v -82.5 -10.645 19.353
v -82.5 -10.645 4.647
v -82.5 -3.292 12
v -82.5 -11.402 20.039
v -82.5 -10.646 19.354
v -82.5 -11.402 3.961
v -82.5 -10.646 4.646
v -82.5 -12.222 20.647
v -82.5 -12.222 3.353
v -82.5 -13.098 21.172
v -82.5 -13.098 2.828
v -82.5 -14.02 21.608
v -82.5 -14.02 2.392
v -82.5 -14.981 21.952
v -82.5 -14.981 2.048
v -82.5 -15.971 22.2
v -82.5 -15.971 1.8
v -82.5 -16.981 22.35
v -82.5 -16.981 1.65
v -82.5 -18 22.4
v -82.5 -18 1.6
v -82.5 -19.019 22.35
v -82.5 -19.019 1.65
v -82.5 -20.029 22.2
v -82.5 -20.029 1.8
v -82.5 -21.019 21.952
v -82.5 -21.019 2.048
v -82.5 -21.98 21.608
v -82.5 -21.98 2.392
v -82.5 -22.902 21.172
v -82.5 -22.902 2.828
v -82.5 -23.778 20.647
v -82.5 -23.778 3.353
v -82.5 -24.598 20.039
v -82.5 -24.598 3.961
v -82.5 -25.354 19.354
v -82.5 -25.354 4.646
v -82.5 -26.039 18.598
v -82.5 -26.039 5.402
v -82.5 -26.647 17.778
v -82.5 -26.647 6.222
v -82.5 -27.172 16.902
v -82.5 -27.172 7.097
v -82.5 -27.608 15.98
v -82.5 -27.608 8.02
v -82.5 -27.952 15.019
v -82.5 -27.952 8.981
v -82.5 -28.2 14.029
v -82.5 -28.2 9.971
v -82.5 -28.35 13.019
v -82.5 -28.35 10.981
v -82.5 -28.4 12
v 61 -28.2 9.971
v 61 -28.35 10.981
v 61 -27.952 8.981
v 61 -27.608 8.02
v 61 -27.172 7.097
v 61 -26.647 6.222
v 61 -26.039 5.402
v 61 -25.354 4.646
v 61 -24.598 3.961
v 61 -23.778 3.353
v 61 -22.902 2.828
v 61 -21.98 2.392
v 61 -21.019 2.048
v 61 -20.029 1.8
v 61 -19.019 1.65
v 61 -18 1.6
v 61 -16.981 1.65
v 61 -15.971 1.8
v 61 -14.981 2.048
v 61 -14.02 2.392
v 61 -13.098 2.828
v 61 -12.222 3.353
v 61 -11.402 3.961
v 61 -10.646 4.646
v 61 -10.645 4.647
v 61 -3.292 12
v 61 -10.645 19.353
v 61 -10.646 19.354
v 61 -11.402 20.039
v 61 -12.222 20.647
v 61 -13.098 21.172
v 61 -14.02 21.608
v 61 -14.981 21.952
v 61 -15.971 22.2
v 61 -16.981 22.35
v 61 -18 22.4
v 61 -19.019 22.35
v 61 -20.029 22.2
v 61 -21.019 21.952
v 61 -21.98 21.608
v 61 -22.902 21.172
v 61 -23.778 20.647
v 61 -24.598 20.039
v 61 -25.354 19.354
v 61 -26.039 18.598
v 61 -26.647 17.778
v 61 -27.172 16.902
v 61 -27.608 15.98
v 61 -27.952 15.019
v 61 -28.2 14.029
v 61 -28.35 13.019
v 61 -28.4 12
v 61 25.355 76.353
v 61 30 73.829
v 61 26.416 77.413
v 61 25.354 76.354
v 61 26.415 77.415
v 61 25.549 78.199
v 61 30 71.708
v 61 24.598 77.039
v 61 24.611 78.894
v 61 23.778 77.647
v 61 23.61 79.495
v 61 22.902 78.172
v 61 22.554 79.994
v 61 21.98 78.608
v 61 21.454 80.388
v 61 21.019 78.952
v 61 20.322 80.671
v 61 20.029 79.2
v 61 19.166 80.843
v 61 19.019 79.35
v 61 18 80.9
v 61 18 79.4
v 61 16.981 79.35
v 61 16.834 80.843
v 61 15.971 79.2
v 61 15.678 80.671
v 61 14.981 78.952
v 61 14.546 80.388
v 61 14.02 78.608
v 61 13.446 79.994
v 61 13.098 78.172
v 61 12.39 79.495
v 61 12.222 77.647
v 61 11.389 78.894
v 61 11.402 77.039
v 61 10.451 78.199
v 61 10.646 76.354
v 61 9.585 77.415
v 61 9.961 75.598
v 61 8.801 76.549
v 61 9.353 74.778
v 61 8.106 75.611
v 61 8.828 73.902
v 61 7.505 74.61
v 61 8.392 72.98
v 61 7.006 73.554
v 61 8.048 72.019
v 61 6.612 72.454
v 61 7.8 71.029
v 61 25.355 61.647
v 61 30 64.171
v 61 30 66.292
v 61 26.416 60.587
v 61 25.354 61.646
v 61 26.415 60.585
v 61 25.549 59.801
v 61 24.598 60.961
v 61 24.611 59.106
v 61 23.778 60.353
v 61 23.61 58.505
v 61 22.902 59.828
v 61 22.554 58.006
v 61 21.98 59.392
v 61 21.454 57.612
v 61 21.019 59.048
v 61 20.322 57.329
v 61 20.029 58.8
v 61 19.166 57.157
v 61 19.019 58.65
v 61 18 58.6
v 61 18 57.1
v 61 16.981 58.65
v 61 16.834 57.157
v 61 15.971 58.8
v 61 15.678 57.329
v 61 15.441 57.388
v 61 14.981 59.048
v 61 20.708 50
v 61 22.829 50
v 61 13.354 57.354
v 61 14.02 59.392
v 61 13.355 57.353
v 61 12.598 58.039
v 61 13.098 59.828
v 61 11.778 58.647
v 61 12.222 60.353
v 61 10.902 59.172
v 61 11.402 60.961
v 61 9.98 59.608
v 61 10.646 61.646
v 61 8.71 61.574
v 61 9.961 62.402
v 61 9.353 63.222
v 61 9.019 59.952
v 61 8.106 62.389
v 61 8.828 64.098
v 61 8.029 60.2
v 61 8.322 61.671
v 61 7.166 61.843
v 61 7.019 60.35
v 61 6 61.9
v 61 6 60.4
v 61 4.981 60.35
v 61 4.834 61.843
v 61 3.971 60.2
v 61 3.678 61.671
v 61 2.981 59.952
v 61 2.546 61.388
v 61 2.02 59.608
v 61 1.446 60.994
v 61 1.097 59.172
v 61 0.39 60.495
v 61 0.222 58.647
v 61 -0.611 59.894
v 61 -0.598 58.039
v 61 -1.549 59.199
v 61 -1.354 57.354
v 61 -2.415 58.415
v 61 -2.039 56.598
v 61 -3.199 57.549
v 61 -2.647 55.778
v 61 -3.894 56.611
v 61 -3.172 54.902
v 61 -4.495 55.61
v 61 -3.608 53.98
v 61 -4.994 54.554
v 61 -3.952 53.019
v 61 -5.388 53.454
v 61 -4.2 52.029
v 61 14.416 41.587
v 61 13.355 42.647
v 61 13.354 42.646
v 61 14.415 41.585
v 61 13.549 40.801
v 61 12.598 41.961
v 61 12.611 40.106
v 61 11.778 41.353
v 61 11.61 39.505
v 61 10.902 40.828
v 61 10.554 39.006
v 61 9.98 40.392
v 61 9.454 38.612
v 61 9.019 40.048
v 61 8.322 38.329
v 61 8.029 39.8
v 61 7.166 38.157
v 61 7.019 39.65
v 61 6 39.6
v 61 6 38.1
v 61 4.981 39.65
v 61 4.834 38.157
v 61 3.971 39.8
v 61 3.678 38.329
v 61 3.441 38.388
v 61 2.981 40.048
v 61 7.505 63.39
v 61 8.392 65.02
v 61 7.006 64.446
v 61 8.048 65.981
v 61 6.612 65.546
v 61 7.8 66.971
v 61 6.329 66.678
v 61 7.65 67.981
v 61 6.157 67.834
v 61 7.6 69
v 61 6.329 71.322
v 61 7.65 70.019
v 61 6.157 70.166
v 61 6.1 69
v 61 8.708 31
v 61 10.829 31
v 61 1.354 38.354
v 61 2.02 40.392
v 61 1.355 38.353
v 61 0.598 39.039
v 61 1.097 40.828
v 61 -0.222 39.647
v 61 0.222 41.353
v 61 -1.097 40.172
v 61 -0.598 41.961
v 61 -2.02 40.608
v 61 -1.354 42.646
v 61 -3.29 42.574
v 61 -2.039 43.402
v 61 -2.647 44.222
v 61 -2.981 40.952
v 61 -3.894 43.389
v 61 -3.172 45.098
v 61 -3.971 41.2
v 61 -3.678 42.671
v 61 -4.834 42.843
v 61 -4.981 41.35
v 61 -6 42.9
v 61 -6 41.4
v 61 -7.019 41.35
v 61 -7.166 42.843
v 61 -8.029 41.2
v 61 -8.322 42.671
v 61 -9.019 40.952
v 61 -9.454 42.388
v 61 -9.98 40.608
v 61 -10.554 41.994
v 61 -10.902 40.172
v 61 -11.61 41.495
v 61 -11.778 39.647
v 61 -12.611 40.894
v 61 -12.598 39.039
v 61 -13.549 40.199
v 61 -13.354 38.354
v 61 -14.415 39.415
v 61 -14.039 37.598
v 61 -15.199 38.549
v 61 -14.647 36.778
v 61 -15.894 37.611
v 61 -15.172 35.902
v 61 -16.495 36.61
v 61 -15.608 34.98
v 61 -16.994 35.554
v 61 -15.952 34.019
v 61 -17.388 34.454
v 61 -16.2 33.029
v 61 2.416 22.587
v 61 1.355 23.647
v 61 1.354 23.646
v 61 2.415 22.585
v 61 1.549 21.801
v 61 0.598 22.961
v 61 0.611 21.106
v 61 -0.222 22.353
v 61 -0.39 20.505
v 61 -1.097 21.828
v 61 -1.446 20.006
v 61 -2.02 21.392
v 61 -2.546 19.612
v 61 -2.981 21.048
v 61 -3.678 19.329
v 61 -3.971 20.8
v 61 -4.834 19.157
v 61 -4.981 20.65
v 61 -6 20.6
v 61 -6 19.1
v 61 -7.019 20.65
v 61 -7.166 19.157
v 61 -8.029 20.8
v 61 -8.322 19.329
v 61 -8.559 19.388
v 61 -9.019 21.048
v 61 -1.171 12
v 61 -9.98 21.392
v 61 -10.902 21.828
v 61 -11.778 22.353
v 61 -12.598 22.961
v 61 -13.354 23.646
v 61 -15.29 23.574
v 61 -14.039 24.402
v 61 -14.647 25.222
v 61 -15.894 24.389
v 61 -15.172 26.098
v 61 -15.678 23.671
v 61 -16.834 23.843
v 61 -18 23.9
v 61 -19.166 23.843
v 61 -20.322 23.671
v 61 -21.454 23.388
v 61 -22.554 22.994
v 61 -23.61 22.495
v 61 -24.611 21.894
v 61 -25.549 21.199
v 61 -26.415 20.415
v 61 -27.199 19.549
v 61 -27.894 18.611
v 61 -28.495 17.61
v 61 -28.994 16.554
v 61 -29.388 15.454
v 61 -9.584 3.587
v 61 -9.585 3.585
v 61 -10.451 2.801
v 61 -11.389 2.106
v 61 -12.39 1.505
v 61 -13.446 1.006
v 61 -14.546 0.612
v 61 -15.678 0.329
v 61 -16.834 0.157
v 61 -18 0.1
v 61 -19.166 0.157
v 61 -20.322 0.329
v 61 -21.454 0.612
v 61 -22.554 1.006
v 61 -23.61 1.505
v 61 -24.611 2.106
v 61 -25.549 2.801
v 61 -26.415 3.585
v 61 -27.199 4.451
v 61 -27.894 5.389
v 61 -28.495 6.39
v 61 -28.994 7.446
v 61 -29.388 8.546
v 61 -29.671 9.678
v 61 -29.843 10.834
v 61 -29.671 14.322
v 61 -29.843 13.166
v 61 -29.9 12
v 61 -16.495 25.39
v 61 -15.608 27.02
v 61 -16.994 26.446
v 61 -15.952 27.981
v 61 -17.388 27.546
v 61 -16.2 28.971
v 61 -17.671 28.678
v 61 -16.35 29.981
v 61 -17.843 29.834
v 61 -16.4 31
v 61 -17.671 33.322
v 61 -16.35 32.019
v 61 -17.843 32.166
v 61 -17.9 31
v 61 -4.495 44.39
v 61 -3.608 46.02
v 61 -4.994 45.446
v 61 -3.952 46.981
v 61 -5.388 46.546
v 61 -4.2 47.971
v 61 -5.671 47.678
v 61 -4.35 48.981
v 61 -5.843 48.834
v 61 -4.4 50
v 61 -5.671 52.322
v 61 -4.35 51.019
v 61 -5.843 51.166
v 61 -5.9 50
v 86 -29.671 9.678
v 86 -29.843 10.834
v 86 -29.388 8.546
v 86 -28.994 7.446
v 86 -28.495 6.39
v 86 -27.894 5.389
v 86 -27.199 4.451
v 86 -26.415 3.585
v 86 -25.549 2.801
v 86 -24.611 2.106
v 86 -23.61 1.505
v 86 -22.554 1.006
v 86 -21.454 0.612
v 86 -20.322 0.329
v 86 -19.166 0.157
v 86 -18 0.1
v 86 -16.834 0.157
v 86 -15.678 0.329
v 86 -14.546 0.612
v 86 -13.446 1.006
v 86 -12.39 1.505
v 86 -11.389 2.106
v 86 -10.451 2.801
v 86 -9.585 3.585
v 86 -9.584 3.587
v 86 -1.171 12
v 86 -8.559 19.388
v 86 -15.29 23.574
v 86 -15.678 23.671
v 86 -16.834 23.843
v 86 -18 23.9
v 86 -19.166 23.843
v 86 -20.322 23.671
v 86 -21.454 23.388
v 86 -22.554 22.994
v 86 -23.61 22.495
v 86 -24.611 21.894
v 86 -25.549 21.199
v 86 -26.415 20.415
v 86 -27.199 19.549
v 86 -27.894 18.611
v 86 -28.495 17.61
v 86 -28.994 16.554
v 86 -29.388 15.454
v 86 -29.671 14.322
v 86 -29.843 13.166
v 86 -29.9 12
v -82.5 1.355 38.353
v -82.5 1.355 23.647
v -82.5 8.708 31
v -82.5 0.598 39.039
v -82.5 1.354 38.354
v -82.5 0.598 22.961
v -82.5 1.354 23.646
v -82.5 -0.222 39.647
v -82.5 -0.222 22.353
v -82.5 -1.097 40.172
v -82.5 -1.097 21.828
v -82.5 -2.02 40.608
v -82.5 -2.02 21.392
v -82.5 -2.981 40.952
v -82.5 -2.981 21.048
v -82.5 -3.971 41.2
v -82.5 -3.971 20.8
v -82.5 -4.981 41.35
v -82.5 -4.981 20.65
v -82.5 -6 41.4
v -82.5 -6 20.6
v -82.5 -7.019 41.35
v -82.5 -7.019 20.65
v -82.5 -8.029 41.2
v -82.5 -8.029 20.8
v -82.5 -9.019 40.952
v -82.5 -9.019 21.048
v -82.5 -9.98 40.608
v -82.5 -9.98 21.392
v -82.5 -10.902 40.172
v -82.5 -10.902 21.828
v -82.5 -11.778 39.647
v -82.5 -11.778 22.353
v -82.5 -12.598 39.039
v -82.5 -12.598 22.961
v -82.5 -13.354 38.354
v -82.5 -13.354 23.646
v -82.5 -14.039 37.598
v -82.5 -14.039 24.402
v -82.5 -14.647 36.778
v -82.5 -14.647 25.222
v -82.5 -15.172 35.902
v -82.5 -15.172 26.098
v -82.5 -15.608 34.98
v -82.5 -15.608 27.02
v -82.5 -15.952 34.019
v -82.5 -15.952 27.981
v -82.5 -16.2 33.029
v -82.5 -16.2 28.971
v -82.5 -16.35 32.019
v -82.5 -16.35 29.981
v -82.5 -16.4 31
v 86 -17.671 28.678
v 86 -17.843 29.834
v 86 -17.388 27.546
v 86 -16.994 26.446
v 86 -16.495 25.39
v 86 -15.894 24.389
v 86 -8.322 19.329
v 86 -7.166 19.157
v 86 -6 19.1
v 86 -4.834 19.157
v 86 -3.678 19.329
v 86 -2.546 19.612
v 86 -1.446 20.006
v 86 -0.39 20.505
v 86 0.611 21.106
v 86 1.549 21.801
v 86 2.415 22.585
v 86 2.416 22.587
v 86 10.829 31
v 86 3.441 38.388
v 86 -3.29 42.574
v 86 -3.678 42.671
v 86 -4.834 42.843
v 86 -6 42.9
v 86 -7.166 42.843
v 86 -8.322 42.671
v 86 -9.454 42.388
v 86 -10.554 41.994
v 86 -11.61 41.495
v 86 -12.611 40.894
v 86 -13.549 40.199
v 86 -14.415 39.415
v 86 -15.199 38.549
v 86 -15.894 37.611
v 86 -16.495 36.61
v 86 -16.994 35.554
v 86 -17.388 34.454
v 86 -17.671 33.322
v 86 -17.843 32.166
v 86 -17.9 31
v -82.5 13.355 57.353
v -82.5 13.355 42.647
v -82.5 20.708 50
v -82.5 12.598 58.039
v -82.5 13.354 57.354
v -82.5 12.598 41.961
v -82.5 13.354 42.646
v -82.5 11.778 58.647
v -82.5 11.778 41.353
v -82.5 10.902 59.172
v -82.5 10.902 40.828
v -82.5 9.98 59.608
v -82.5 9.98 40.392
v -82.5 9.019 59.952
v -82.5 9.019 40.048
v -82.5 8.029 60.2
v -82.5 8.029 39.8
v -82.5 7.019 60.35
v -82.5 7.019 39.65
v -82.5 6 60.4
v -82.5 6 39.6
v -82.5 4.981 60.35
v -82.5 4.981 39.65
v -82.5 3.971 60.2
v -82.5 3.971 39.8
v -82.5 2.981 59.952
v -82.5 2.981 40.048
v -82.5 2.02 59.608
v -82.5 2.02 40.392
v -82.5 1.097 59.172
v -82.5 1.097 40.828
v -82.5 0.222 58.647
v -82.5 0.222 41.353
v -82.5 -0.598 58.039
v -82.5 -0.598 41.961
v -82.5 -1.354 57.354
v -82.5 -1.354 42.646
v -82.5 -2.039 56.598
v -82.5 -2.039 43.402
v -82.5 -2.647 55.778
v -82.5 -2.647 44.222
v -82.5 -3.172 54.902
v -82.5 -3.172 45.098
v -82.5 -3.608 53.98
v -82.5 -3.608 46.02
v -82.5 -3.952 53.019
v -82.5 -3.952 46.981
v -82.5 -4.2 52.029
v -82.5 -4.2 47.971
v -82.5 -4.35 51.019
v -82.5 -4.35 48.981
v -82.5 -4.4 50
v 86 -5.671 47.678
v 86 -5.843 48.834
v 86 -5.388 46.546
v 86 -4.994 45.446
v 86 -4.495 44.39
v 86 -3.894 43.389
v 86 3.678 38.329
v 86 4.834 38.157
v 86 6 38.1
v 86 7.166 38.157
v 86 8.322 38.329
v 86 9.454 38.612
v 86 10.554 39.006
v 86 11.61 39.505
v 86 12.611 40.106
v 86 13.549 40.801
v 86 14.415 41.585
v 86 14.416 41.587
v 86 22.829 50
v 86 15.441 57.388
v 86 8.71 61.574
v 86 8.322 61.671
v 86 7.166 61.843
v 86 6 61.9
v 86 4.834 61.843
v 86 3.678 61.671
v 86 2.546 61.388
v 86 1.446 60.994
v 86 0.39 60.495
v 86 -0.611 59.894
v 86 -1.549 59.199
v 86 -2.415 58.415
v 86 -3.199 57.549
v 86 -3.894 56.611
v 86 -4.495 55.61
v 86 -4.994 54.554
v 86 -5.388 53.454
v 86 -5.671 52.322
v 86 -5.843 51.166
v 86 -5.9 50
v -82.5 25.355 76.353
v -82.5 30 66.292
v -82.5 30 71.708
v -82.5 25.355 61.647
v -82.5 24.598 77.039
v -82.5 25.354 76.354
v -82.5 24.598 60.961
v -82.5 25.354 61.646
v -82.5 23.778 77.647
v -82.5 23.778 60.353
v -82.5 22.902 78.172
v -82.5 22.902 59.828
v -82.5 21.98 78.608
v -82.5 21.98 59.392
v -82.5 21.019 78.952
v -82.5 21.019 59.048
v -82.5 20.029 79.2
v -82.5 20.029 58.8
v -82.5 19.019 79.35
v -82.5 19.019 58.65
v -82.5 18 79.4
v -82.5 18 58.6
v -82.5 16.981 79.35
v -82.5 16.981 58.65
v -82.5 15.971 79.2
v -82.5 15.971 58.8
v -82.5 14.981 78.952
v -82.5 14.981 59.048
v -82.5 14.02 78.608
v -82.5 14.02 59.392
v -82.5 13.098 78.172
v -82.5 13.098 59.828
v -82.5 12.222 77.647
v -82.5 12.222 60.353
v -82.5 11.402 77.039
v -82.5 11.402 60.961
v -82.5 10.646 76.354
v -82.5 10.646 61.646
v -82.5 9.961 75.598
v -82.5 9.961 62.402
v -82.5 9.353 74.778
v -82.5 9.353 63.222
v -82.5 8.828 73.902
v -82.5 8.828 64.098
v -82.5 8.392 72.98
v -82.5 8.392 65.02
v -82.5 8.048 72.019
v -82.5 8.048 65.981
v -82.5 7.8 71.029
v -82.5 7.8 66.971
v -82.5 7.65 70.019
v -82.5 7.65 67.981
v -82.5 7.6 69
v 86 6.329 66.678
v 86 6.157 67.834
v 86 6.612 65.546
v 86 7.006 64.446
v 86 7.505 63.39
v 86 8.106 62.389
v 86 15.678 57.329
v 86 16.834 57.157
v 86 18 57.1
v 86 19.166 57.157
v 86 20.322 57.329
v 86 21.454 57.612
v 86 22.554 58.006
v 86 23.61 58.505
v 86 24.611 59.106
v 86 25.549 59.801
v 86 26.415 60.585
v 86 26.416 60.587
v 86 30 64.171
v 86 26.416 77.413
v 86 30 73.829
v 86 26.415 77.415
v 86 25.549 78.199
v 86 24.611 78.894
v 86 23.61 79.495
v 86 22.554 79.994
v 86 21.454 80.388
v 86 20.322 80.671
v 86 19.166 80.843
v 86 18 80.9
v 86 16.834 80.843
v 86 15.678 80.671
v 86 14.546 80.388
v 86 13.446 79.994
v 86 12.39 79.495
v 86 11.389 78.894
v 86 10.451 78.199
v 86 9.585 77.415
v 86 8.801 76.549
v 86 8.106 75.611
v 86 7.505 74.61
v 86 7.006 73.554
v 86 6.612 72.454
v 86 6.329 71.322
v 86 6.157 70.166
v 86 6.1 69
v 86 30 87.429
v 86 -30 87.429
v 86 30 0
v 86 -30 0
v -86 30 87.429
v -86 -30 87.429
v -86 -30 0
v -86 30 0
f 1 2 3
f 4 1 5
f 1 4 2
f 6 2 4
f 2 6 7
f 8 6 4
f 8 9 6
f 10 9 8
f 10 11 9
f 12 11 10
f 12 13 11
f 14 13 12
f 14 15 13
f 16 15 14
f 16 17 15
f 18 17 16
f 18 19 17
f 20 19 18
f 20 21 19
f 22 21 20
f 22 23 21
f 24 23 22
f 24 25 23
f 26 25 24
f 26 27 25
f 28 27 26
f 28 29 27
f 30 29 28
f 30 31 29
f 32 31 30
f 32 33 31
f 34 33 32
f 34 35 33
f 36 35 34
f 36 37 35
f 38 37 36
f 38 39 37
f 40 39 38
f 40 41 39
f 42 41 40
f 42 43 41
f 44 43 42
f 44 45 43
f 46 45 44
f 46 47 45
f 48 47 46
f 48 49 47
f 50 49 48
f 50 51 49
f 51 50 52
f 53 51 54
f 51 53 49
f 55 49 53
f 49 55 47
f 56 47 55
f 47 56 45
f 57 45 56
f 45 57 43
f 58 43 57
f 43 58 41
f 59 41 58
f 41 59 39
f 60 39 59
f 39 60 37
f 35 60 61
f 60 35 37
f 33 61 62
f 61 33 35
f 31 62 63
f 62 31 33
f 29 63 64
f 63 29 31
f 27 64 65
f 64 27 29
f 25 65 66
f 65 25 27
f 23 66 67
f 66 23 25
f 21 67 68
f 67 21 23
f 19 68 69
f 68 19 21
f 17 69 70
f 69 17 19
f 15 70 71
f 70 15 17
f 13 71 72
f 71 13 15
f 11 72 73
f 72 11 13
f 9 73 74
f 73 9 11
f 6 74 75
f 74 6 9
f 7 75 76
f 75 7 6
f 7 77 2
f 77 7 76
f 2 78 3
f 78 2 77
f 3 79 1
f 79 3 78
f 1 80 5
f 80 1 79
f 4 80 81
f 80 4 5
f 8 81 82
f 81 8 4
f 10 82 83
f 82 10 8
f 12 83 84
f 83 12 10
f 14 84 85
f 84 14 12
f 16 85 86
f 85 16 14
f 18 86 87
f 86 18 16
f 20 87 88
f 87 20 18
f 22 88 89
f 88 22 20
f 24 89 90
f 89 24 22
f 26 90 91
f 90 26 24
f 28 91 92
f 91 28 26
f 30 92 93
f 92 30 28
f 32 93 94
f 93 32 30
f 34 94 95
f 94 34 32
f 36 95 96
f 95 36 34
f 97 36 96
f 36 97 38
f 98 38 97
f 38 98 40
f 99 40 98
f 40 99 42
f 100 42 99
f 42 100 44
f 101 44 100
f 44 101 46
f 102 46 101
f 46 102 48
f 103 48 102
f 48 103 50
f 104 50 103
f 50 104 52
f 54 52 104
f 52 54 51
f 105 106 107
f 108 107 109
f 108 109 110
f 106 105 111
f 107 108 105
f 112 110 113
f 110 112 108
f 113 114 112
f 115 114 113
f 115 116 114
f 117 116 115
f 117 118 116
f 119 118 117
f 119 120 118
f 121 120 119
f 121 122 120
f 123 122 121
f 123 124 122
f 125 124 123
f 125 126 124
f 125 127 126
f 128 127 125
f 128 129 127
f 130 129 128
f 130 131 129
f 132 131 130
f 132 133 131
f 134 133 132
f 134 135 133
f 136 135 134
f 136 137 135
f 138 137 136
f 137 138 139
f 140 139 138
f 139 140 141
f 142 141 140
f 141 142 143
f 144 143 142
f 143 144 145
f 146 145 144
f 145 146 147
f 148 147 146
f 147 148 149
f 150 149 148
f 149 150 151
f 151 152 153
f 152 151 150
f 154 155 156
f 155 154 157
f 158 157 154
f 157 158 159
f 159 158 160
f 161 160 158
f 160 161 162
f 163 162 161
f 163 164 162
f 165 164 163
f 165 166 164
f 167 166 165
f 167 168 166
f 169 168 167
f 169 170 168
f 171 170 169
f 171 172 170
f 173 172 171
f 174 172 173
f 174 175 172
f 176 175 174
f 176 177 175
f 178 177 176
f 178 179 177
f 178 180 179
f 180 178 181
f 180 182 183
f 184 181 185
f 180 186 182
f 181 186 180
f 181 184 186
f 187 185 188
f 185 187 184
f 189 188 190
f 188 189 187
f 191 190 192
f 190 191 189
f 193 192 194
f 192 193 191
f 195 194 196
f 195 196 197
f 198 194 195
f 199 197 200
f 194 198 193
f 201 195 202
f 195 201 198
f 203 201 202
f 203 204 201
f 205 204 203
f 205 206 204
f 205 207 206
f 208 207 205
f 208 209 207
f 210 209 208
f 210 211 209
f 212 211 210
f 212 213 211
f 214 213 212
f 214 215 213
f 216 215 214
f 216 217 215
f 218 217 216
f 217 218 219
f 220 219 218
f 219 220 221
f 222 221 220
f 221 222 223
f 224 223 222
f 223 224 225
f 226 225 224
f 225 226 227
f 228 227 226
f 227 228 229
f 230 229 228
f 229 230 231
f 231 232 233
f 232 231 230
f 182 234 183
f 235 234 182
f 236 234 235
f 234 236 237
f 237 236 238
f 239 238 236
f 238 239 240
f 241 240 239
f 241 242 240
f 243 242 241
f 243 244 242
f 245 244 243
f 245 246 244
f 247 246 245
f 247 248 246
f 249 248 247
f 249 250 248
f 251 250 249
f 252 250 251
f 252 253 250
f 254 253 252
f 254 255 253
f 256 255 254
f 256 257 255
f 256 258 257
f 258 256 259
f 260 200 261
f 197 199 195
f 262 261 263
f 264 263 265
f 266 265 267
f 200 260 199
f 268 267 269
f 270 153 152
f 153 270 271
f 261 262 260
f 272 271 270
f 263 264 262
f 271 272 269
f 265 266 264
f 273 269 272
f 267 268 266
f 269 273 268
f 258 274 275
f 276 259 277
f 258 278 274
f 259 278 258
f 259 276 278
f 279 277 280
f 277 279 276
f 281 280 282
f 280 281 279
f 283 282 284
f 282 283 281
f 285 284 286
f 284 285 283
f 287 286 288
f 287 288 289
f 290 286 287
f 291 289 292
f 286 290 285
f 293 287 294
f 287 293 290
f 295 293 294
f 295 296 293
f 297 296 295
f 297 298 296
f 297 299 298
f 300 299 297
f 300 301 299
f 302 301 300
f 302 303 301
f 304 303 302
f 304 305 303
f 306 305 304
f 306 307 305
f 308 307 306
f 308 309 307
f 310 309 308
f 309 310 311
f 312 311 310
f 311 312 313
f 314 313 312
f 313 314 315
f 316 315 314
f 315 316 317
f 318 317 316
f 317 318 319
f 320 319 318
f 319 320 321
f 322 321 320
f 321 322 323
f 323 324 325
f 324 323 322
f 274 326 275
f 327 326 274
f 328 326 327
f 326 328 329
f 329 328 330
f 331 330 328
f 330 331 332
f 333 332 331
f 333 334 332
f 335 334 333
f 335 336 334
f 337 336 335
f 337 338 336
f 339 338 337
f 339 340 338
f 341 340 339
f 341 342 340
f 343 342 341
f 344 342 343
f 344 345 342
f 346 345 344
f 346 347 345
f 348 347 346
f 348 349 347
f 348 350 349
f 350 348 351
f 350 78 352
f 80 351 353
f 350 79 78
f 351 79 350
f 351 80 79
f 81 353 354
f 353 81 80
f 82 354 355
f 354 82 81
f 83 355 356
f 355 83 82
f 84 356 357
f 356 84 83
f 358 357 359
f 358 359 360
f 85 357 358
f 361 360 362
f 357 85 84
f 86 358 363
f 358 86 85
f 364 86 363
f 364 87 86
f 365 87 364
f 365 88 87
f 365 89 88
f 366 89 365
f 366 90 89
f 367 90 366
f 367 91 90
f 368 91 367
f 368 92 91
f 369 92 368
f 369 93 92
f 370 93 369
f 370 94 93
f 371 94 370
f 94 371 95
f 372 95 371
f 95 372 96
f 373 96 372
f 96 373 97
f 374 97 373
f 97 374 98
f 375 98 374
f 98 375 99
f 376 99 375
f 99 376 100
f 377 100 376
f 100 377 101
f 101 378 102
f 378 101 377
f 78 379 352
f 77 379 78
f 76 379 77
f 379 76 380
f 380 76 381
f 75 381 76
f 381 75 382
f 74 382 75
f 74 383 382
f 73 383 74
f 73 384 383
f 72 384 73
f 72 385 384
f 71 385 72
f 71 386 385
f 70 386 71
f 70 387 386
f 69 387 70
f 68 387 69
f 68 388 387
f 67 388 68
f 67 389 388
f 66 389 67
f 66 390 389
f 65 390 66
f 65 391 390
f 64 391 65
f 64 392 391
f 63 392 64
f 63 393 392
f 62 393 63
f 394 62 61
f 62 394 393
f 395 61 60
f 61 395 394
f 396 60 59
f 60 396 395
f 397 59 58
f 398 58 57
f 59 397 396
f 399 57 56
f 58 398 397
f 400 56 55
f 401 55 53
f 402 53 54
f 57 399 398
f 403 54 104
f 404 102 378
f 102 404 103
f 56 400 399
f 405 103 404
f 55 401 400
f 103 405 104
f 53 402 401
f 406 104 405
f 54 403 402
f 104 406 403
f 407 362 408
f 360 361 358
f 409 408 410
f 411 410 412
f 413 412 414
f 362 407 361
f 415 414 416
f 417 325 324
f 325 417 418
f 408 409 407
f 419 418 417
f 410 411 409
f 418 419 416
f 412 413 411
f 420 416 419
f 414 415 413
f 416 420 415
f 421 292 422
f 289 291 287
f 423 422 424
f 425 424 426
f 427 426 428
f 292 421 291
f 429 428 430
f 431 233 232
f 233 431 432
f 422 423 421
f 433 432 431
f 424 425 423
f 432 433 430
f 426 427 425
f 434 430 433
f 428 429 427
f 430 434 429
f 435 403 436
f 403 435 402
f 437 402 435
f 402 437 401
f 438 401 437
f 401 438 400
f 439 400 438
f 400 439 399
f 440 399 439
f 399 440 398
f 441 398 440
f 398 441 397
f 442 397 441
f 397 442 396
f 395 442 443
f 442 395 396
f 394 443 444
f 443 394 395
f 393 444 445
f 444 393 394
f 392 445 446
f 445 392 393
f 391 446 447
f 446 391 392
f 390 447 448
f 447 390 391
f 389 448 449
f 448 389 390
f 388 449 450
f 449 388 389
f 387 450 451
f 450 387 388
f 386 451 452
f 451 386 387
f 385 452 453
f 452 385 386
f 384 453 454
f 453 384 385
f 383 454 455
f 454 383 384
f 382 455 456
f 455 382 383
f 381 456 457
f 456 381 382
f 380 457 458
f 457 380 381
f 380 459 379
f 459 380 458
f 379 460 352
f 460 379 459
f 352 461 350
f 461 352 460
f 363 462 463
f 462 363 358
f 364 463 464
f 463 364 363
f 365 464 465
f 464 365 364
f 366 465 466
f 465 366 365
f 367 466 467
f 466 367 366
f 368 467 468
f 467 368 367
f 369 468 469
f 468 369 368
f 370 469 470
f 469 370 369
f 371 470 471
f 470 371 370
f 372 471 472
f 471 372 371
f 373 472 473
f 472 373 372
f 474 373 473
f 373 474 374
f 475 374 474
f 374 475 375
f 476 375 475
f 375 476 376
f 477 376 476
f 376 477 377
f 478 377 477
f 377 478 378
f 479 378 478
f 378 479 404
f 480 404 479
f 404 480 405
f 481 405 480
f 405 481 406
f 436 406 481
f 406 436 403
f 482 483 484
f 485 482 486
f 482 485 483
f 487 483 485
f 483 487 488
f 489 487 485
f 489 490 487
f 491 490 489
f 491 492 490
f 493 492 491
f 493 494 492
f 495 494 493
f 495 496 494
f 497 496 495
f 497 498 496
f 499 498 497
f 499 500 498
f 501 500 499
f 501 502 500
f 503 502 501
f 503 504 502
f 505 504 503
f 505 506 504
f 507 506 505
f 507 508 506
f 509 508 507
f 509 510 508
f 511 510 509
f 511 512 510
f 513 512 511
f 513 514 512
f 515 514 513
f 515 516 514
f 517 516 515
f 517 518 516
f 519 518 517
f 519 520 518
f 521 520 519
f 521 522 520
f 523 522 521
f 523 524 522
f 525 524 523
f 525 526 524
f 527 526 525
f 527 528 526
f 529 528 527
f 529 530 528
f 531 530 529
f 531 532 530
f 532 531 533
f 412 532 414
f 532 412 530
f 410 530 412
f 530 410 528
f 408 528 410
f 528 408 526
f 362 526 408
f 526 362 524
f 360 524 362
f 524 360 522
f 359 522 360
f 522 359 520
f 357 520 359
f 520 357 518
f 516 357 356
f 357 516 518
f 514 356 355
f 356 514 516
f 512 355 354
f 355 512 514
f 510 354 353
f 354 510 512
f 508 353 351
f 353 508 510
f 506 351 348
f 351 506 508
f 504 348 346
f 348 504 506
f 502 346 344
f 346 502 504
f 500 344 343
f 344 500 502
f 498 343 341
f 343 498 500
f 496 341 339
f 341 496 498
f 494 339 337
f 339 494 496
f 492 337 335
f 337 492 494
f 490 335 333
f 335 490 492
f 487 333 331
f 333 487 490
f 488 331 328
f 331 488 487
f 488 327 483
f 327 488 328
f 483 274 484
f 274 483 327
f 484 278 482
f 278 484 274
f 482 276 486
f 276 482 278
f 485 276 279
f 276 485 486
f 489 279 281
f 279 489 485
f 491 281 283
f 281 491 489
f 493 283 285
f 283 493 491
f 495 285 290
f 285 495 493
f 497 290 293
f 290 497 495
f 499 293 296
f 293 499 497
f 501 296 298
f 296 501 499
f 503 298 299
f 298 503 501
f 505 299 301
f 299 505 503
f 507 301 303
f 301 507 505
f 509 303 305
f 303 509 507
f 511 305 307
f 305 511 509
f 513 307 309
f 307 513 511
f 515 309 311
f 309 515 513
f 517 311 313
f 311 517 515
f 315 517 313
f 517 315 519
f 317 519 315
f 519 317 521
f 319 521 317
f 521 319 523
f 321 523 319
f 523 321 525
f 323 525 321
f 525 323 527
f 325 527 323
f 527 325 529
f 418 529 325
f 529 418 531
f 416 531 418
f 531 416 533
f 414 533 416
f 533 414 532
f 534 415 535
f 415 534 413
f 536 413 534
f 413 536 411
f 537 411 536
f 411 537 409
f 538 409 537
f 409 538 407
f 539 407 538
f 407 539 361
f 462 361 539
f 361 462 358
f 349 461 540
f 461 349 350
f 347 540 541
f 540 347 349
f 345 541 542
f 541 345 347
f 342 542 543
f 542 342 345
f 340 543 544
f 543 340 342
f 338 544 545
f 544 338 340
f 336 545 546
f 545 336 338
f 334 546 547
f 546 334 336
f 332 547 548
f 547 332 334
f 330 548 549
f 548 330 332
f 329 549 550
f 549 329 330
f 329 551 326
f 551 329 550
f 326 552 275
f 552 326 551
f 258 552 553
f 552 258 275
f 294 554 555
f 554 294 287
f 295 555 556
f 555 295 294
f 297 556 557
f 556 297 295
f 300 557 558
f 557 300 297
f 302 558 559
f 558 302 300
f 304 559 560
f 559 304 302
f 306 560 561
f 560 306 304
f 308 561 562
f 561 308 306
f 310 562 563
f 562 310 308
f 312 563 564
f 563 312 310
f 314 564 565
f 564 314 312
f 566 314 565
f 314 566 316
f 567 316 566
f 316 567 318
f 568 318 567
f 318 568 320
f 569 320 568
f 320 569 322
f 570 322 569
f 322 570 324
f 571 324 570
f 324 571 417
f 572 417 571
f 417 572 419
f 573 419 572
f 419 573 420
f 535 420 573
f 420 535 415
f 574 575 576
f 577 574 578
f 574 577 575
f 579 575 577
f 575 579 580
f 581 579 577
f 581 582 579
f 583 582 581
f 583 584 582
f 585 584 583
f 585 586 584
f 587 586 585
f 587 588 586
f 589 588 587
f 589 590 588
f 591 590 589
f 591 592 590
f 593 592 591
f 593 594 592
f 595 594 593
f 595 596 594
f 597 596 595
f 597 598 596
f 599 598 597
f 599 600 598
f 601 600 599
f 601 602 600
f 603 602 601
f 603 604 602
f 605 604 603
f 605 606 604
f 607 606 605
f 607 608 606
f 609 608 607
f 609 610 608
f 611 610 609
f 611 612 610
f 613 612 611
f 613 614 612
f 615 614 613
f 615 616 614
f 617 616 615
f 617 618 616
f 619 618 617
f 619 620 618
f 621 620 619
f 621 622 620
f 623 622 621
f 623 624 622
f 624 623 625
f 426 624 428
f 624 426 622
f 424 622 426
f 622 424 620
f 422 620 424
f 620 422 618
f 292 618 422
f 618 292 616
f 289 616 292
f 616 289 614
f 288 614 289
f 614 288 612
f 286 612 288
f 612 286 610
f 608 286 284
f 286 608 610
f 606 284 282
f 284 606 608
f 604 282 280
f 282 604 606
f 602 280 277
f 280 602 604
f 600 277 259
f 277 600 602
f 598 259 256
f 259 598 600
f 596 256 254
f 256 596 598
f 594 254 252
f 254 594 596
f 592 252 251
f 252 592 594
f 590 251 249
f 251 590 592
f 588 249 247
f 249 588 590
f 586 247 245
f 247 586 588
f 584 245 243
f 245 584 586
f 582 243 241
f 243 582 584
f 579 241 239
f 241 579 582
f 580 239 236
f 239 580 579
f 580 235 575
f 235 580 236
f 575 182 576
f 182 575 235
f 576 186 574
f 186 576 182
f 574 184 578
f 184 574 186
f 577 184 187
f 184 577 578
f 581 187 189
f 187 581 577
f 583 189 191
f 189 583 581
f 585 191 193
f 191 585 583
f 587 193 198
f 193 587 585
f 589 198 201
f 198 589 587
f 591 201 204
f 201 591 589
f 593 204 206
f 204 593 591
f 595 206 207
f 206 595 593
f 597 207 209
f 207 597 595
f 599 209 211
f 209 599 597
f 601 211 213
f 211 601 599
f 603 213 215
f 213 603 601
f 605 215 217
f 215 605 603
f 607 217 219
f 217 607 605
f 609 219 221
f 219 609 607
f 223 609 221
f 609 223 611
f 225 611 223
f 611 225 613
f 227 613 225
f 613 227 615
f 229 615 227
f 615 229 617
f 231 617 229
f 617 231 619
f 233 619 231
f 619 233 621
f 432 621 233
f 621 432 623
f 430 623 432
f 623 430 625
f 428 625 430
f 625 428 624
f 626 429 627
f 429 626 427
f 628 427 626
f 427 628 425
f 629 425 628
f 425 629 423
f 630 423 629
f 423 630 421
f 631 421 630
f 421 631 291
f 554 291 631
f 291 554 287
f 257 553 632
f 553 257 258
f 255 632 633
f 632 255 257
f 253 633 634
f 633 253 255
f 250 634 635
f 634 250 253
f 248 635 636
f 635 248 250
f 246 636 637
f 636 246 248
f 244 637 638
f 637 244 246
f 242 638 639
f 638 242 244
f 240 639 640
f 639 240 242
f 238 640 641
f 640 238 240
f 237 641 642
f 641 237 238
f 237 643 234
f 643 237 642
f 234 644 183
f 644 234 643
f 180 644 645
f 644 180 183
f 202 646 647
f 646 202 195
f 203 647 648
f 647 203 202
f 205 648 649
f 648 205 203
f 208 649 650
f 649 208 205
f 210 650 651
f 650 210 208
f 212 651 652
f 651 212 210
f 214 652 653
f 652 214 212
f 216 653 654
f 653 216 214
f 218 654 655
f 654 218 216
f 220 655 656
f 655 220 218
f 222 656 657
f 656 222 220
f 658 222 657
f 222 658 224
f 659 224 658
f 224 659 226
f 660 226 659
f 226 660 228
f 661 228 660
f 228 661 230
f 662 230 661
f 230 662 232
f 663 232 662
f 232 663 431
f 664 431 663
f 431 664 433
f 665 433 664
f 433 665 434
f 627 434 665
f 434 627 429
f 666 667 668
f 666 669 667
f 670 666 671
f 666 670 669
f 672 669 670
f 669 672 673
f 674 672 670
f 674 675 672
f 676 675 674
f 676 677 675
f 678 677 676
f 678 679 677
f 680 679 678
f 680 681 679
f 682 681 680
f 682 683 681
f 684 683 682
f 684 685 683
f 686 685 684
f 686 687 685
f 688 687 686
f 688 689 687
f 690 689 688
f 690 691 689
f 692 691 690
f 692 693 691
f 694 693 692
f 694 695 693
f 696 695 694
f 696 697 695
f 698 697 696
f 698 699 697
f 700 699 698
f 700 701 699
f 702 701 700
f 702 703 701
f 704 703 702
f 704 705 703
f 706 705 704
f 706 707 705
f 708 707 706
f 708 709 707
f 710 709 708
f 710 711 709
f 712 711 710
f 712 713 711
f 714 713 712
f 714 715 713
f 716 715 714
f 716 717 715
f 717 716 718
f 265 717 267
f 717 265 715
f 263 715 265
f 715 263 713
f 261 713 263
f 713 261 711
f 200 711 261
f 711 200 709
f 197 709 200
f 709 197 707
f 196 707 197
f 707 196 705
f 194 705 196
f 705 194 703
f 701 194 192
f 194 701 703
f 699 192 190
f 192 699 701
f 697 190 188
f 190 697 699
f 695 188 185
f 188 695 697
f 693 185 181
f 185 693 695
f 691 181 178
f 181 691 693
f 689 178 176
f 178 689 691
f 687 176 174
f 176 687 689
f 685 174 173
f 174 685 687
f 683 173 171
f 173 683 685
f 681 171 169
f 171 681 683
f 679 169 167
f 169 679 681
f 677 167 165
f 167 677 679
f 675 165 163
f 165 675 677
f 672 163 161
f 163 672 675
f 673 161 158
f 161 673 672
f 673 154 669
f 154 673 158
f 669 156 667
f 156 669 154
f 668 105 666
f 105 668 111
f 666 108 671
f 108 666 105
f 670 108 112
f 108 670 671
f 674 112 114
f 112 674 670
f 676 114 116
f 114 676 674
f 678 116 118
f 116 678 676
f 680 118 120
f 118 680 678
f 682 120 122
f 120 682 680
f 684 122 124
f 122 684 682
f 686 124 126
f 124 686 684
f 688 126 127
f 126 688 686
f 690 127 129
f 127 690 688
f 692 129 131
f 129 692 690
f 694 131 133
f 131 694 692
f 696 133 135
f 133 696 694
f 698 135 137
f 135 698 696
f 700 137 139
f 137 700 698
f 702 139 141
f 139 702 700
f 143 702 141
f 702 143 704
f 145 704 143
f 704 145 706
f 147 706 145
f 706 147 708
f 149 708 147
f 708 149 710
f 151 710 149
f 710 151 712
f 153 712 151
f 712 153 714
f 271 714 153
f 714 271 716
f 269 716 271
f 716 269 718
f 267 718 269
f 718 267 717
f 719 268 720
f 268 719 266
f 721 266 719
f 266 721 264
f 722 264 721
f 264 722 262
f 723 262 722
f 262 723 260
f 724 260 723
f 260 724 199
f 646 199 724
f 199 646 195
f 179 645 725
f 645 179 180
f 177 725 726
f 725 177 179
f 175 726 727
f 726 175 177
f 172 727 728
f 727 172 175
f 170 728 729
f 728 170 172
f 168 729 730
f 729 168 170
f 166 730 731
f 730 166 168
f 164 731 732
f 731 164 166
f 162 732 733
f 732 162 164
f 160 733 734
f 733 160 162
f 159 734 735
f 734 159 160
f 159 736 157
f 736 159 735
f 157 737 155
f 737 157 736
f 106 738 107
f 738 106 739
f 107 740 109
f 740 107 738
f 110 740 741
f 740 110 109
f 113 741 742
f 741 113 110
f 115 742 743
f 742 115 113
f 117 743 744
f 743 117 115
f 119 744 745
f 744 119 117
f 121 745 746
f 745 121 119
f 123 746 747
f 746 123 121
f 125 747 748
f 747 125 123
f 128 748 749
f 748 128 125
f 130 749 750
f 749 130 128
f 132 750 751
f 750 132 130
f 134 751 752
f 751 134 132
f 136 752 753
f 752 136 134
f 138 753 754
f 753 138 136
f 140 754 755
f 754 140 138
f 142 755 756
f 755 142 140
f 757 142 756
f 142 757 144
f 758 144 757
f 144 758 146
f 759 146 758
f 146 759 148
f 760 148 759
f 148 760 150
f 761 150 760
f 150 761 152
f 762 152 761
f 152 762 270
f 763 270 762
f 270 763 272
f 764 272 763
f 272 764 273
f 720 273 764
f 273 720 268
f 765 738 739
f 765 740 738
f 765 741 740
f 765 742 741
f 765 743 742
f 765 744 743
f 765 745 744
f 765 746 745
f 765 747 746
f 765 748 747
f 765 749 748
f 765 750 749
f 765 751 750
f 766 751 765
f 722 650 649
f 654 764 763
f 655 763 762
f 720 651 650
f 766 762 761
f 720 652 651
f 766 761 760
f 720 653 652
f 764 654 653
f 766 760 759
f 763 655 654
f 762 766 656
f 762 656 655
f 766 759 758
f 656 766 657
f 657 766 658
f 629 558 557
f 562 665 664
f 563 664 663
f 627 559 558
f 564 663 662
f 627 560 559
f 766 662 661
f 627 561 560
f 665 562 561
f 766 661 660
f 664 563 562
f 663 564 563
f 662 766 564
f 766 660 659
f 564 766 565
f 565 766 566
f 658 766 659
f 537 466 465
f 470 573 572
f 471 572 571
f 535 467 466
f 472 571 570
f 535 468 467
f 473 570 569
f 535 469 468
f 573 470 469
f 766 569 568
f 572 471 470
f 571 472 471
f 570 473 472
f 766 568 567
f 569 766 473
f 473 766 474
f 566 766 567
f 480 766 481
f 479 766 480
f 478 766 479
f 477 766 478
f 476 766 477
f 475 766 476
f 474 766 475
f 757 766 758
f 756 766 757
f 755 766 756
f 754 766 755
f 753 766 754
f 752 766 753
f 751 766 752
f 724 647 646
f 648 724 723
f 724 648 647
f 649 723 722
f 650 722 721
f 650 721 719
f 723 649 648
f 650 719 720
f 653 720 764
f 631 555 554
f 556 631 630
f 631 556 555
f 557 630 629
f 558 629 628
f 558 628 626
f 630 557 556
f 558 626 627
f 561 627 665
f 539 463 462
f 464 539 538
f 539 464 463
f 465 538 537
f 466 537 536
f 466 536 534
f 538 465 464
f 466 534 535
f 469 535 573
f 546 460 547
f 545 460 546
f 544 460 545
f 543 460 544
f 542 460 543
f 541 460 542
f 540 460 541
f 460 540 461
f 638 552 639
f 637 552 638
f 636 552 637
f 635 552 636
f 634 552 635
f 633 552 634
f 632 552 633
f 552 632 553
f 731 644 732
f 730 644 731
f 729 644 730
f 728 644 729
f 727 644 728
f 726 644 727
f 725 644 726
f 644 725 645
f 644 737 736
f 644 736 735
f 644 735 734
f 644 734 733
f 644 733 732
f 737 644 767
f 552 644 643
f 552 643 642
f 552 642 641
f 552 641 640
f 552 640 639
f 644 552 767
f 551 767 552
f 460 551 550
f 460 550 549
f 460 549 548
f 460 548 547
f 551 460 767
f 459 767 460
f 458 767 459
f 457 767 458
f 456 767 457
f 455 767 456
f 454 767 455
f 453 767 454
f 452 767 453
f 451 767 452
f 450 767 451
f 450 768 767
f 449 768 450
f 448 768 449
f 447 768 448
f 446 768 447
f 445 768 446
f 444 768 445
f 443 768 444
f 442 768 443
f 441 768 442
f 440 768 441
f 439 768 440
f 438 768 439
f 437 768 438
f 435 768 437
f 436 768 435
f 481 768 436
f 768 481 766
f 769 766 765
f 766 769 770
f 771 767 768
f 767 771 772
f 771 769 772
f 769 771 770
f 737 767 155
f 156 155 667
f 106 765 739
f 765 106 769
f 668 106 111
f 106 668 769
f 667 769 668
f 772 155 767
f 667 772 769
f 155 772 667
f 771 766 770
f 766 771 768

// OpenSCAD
// file: common.scad
// ============================================================
// common.scad — shared parameters + modules for all designs
// LOCKED PEN SPECIFICATION (do not change)
// ============================================================
PEN_L = 165;      // pen length (mm)
PEN_A = 17;       // pen cross-section minor
PEN_B = 20;       // pen cross-section major (used as diameter envelope)
CLEAR = 0.4;      // fit clearance
WALL  = 1.6;      // minimum wall thickness

$fn = 64;

RCH = PEN_B/2 + CLEAR;   // = 10.4  channel radius
EPS = 0.01;

// --- open-top U trough cut, axis along X, centered at local origin -----------
// Removes a lower half-cylinder of radius r plus a full-width vertical slot
// upward, so the channel is open at the top (no ceiling -> no overhang).
module trough_cut(len, r=RCH, top=80) {
    union() {
        rotate([0,90,0]) cylinder(h=len, r=r, center=true);
        translate([0,0,top/2]) cube([len, 2*r, top], center=true); // slot upward
    }
}

// --- teardrop hole, axis along X, centered at local origin --------------------
// 45-degree self-supporting apex pointing +Z so a horizontal bore can print
// without support.
module teardrop_cut(len, r=RCH) {
    rotate([0,90,0])
        linear_extrude(height=len, center=true)
            union() {
                circle(r=r);
                polygon([[ 0.7071*r, 0.7071*r],
                         [ 0,         1.4142*r],
                         [-0.7071*r,  0.7071*r]]);
            }
}

// --- dial relief: widened open-top pocket at one channel end -----------------
// place at the +X or -X end of a channel so the dose dial clears / can be turned
module dial_relief(end_x, r=RCH+2.2, len=28, top=80) {
    translate([end_x, 0, 0]) trough_cut(len, r, top);
}
// main file
// q3_diag4 — four teardrop bores in a diagonal echelon (staircase look)
// Family: staggered/clustered. Pens climb up-and-back so the four dose dials
// fan out and stay reachable. Enclosed teardrops => no overhang ceilings even
// though the pens overlap in side profile.
include <common.scad>

LBLK  = 172;
STEPY = 12;                        // back-step per pen
STEPZ = 19;                        // rise per pen (diag 22.47 > 22.4 min spacing)
RR    = RCH + 1.5;                 // dial-relief radius

Y = [for (i=[0:3]) -1.5*STEPY + i*STEPY];   // -18,-6,6,18
Z = [for (i=[0:3]) WALL + RCH + i*STEPZ];   // 12,31,50,69

WBLK = (max(Y) - min(Y)) + 2*RCH + 2*WALL;  // 36 + 24 = 60  < 63.5
YCEN = (max(Y) + min(Y)) / 2;               // 0
HBLK = Z[3] + 1.4142*RR + WALL;
RELIEF_X = LBLK/2 - 10;

difference() {
    translate([0, YCEN, HBLK/2]) cube([LBLK, WBLK, HBLK], center=true);
    for (i = [0:3]) {
        translate([0, Y[i], Z[i]]) teardrop_cut(PEN_L);
        translate([RELIEF_X, Y[i], Z[i]]) teardrop_cut(30, RR);
    }
}
